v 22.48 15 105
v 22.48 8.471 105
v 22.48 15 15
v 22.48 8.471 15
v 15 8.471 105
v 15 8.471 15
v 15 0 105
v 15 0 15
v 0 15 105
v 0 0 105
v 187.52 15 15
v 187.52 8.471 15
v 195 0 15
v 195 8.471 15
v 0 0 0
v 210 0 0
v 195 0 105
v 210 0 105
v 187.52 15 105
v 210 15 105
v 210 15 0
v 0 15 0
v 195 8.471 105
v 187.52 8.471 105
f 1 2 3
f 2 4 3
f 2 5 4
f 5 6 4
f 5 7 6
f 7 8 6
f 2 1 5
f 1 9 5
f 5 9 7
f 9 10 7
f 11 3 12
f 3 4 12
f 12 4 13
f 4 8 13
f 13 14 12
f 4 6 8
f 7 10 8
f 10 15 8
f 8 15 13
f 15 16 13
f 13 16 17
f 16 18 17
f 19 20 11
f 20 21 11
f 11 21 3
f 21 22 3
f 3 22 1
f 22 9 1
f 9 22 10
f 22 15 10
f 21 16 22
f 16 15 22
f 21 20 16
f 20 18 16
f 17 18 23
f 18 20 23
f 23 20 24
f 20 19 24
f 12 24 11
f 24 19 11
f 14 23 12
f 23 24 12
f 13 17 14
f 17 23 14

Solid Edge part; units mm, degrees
sketch "Sketch1" plane through (0, 0, 0) normal (0, -1, 0) x (1, 0, 0)
  line L0 (0, 105) -> (15, 105)
  line L1 (15, 90) -> (15, 105)
  line L2 (15, 15) -> (15, 90)
  line L3 (195, 15) -> (15, 15)
  line L4 (195, 51) -> (195, 15)
  line L5 (195, 90) -> (195, 51)
  line L6 (195, 90) -> (195, 105)
  line L7 (195, 105) -> (210, 105)
  line L8 (210, 105) -> (210, 51)
  line L9 (210, 0) -> (210, 51)
  line L10 (0, 0) -> (210, 0)
  line L11 (0, 105) -> (0, 0)
extrude "Protrusion1" add sketch "Sketch1" against normal blind 15
sketch "Sketch2" plane through (202.5, 7.5, 105) normal (0, 0, 1) x (0, -1, 0)
  line L0 (-7.5, -14.98) -> (-7.5, -7.5)
  line L1 (-7.5, -7.5) -> (-0.9713, -7.5)
  line L2 (-0.9713, -7.5) -> (-0.9713, -14.98)
  line L3 (-0.9713, -14.98) -> (-7.5, -14.98)
extrude "ExtrudedProtrusion_9" add sketch "Sketch2" against normal blind 94.0808
sketch "Sketch3" plane through (202.5, 7.5, 105) normal (0, 0, 1) x (0, -1, 0)
  line L0 (-7.5, -180.02) -> (-7.5, -188.3904)
  line L1 (-7.5, -188.3904) -> (-0.9713, -188.3904)
  line L2 (-0.9713, -188.3904) -> (-0.9713, -180.02)
  line L3 (-0.9713, -180.02) -> (-7.5, -180.02)
extrude "Protrusion2" add sketch "Sketch3" against normal up to vertex (105 mm away)
